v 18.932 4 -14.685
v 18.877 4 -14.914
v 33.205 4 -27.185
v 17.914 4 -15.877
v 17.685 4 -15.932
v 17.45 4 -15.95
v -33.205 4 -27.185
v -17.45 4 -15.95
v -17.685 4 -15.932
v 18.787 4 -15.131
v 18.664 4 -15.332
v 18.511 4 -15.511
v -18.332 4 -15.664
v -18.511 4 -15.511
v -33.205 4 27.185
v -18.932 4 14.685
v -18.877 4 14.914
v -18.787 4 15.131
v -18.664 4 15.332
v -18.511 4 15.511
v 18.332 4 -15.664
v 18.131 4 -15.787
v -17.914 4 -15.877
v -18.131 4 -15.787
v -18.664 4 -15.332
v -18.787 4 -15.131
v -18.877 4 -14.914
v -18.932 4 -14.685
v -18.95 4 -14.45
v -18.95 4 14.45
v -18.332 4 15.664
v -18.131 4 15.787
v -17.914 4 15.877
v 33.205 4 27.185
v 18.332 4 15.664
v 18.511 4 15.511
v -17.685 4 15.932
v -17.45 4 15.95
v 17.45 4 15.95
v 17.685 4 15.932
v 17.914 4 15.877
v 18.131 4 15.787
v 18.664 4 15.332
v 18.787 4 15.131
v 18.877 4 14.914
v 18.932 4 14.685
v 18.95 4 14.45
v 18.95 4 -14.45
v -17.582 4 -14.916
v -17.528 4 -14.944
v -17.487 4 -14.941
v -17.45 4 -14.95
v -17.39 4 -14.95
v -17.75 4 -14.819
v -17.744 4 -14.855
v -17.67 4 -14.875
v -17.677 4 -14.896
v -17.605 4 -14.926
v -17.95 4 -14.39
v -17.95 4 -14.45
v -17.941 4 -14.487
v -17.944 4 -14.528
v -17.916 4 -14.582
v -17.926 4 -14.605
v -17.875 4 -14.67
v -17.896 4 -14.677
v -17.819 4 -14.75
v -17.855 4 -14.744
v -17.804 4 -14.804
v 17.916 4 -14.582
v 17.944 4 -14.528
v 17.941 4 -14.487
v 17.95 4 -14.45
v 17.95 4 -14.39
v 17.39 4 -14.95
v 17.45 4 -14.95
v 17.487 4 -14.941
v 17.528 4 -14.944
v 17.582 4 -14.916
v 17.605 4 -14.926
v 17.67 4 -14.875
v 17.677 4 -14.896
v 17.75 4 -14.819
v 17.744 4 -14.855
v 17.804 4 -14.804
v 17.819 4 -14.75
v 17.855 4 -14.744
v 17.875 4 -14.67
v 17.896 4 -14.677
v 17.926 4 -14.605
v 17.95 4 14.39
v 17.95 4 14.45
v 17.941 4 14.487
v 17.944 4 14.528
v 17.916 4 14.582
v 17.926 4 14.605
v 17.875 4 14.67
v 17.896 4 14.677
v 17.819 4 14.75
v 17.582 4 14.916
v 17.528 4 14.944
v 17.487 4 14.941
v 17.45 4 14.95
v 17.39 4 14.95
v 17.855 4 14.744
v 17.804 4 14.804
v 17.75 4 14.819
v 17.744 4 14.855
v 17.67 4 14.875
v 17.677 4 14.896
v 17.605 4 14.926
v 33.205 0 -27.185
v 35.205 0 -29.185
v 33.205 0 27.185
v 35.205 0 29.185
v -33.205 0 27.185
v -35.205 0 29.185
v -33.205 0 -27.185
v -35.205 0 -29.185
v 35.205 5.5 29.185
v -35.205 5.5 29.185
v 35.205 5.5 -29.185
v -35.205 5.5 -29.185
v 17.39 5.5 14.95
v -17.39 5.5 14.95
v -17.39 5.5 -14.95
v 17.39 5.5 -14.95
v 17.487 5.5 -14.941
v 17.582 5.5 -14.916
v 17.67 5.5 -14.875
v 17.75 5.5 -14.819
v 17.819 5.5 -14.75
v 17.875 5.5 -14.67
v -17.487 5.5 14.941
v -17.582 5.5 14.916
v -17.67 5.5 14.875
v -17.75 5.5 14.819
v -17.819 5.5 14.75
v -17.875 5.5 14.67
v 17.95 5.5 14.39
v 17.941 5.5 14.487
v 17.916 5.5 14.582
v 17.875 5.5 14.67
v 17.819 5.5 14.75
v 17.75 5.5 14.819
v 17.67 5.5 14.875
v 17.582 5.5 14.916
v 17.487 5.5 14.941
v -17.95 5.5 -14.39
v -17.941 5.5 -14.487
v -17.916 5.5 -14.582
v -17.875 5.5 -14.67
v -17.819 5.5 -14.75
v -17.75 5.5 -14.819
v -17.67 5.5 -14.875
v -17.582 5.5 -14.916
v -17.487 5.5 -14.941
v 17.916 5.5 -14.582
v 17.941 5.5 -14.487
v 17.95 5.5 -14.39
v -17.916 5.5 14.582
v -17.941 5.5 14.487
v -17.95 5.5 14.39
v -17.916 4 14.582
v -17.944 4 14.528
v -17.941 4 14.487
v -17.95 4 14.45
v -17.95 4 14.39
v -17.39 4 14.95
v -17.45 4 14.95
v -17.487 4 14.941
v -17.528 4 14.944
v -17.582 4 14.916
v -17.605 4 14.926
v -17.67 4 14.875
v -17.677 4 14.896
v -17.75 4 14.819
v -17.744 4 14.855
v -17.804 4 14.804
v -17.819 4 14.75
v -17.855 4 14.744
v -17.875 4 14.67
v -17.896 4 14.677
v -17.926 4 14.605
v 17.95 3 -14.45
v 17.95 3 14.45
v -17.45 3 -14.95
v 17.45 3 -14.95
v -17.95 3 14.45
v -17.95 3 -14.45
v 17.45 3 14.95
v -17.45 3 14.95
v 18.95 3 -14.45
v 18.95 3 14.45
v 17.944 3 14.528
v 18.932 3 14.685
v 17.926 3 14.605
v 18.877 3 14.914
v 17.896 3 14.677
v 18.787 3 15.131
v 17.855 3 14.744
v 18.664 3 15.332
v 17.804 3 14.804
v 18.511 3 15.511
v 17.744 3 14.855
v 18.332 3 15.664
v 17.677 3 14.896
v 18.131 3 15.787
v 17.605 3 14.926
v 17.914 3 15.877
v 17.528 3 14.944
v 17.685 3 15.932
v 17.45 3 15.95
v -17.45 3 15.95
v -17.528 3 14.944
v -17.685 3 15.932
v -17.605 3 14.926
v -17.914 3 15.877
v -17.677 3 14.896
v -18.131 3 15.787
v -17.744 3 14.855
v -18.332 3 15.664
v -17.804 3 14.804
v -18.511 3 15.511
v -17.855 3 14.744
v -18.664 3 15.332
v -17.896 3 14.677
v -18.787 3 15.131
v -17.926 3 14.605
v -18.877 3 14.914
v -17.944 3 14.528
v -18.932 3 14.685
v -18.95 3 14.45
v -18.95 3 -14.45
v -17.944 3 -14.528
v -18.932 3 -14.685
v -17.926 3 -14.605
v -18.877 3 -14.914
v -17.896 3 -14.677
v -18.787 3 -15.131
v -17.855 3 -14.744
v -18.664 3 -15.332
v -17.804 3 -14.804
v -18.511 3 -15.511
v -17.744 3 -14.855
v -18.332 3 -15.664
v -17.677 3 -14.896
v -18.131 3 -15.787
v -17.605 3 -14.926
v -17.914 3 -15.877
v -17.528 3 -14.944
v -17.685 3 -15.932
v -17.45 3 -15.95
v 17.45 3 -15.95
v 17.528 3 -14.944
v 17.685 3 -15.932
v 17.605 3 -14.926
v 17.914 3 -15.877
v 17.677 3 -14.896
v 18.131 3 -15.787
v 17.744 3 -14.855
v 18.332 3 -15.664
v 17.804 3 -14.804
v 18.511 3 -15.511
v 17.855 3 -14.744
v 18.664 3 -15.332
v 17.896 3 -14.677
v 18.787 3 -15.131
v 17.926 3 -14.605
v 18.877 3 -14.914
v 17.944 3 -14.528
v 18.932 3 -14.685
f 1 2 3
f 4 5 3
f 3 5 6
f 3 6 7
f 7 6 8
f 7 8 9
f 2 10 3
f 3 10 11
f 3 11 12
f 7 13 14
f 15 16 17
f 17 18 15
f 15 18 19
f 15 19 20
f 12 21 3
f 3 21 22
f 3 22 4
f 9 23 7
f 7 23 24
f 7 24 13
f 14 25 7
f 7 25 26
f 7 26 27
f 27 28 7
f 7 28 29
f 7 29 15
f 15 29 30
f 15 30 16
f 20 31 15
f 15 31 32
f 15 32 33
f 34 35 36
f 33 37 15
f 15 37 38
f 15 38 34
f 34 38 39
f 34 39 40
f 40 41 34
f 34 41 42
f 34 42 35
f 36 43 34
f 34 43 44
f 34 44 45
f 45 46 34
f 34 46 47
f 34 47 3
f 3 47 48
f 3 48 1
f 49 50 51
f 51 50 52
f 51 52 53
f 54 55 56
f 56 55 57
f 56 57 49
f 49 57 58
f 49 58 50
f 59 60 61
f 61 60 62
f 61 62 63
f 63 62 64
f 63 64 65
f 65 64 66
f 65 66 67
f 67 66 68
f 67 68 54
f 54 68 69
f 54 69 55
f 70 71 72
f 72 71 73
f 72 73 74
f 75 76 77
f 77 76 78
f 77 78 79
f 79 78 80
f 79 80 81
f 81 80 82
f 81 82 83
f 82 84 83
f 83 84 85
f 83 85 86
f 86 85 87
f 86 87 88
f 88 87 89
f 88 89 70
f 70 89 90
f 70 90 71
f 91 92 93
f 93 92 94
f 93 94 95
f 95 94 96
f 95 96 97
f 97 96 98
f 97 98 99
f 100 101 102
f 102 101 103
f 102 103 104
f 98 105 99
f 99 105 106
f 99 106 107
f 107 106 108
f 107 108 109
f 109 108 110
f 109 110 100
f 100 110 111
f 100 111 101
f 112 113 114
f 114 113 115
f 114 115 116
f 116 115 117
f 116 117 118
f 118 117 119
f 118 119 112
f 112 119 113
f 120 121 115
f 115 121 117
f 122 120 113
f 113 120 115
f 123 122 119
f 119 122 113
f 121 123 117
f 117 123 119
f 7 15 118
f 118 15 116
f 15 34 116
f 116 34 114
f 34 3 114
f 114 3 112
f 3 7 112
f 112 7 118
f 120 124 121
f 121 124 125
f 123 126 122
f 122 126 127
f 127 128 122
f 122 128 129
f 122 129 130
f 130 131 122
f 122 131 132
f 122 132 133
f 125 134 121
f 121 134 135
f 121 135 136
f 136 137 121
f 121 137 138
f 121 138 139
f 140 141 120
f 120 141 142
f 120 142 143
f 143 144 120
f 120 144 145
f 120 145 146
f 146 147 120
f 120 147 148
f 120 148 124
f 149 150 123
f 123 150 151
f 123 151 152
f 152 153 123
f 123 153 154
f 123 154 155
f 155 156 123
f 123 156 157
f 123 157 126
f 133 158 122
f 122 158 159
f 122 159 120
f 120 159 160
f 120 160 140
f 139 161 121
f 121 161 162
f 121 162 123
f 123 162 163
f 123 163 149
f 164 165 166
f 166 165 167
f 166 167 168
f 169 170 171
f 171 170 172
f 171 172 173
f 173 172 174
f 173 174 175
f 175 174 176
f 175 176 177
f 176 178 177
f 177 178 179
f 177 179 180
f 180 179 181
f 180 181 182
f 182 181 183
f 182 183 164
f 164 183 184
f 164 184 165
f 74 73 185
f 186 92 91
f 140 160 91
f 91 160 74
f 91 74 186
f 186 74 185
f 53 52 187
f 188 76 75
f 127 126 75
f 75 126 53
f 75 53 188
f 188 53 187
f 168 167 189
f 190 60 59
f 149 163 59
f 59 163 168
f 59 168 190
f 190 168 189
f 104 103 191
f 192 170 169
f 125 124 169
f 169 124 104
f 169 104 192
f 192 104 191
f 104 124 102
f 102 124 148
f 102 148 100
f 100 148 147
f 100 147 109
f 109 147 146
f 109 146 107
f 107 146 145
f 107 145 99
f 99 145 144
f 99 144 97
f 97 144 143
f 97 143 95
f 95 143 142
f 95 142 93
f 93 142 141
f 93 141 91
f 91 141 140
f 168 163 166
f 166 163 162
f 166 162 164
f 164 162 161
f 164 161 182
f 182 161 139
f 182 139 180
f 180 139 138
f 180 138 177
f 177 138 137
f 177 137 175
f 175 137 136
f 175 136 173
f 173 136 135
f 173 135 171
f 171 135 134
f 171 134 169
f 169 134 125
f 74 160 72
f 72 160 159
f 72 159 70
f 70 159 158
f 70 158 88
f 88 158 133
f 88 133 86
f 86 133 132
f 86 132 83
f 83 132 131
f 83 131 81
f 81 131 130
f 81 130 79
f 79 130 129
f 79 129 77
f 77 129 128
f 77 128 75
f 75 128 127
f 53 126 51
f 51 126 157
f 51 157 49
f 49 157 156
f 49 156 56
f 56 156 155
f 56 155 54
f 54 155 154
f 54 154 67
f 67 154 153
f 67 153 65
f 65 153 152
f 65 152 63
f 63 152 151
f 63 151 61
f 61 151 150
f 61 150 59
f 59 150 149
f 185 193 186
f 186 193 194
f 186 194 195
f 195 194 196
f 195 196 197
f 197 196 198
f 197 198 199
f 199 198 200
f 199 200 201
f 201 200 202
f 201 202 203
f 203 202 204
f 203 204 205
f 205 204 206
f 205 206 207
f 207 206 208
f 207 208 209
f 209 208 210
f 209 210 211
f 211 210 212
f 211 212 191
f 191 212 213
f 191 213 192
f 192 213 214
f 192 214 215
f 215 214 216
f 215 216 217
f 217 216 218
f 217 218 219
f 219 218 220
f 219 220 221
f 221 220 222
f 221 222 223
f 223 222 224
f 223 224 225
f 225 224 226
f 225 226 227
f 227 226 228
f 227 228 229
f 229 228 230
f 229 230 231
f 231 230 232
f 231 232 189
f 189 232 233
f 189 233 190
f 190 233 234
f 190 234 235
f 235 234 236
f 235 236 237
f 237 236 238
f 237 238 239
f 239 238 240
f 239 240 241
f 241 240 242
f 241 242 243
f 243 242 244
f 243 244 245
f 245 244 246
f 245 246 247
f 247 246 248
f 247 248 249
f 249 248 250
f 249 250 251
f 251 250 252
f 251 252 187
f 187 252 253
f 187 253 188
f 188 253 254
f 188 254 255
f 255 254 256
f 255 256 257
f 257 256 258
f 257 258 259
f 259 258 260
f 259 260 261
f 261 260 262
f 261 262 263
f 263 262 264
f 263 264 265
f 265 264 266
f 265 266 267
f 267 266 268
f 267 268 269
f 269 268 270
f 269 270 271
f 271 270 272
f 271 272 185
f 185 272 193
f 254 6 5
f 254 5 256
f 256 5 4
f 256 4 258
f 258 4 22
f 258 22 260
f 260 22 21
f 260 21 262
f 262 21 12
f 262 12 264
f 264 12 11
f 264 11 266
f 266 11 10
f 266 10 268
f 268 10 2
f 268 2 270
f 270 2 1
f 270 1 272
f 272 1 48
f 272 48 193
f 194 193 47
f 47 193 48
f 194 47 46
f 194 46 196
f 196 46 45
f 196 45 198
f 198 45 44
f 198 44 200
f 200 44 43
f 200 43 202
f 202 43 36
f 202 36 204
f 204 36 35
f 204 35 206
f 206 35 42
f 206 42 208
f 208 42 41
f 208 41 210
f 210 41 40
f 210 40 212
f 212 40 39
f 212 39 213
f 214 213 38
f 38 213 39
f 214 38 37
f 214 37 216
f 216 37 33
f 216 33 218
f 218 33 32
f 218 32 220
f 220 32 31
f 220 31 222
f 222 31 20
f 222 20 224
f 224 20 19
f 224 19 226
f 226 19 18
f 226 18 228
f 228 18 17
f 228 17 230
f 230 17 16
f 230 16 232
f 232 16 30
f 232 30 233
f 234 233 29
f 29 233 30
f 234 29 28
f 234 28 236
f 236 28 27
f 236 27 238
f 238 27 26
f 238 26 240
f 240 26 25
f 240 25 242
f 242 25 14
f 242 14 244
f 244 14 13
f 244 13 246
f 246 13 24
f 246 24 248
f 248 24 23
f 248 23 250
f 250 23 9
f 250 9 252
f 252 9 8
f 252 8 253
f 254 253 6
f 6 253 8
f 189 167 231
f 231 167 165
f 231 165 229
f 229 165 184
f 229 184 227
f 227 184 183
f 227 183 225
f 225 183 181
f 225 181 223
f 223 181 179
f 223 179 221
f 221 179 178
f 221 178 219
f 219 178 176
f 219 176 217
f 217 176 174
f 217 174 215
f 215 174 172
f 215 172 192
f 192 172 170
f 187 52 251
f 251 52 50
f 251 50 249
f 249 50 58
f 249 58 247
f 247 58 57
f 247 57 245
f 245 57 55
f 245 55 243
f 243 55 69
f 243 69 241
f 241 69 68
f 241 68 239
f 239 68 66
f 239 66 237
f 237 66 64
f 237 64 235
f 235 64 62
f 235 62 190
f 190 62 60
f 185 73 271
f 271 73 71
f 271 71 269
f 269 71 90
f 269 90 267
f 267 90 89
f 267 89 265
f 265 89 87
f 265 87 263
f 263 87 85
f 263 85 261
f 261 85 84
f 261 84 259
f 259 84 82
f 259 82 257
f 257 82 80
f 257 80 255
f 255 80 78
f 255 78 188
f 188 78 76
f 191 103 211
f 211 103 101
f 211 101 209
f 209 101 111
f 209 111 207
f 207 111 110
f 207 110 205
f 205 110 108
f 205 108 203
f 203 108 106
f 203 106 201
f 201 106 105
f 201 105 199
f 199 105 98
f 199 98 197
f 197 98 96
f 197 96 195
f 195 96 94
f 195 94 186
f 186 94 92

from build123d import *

# Parameters (mm, degrees)
SKETCH1_W           = 70.41
SKETCH1_H           = 58.37
SKETCH1_W_2         = 66.41
SKETCH1_H_2         = 54.37
BOSS_EXTRUDE1_DEPTH = 4
SKETCH2_W           = 70.41
SKETCH2_H           = 58.37
SKETCH2_W_2         = 35.9
SKETCH2_H_2         = 29.9
BOSS_EXTRUDE2_DEPTH = 1.5
FILLET1_R           = 0.56
BOSS_EXTRUDE3_DEPTH = 1


with BuildPart() as part:
    # Sketch1 → Boss-Extrude1 (new body)
    with BuildSketch(Plane(origin=(0, 0, 0), x_dir=(1, 0, 0), z_dir=(0, 1, 0))):
        Rectangle(SKETCH1_W, SKETCH1_H)
        Rectangle(SKETCH1_W_2, SKETCH1_H_2, mode=Mode.SUBTRACT)
    extrude(amount=BOSS_EXTRUDE1_DEPTH)

    # Sketch2 → Boss-Extrude2 (add)
    with BuildSketch(Plane(origin=(0, 4, 0), x_dir=(1, 0, 0), z_dir=(0, 1, 0))):
        Rectangle(SKETCH2_W, SKETCH2_H)
        Rectangle(SKETCH2_W_2, SKETCH2_H_2, mode=Mode.SUBTRACT)
    extrude(amount=BOSS_EXTRUDE2_DEPTH)

    # Fillet1
    fillet1_edges = [part.edges().sort_by_distance(p)[0] for p in [
        (17.95, 4.75, -14.95),
        (-17.95, 4.75, -14.95),
        (-17.95, 4.75, 14.95),
        (17.95, 4.75, 14.95),
    ]]
    fillet(fillet1_edges, radius=FILLET1_R)

    # Sketch3 → Boss-Extrude3 (add)
    with BuildSketch(Plane.XZ.offset(-4)):
        with BuildLine():
            Line((18.95, -14.45), (18.95, 14.45))
            ThreePointArc((18.95, 14.45), (18.510660172, 15.510660172), (17.45, 15.95))
            Line((17.45, 15.95), (-17.45, 15.95))
            ThreePointArc((-17.45, 15.95), (-18.510660172, 15.510660172), (-18.95, 14.45))
            Line((-18.95, 14.45), (-18.95, -14.45))
            ThreePointArc((-18.95, -14.45), (-18.510660172, -15.510660172), (-17.45, -15.95))
            Line((-17.45, -15.95), (17.45, -15.95))
            ThreePointArc((17.45, -15.95), (18.510660172, -15.510660172), (18.95, -14.45))
        make_face()
        with BuildLine():
            Line((17.45, -14.95), (-17.45, -14.95))
            ThreePointArc((-17.45, -14.95), (-17.803553391, -14.803553391), (-17.95, -14.45))
            Line((-17.95, -14.45), (-17.95, 14.45))
            ThreePointArc((-17.95, 14.45), (-17.803553391, 14.803553391), (-17.45, 14.95))
            Line((-17.45, 14.95), (17.45, 14.95))
            ThreePointArc((17.45, 14.95), (17.803553391, 14.803553391), (17.95, 14.45))
            Line((17.95, 14.45), (17.95, -14.45))
            ThreePointArc((17.95, -14.45), (17.803553391, -14.803553391), (17.45, -14.95))
        make_face(mode=Mode.SUBTRACT)
    extrude(amount=BOSS_EXTRUDE3_DEPTH)


solid = part.part
